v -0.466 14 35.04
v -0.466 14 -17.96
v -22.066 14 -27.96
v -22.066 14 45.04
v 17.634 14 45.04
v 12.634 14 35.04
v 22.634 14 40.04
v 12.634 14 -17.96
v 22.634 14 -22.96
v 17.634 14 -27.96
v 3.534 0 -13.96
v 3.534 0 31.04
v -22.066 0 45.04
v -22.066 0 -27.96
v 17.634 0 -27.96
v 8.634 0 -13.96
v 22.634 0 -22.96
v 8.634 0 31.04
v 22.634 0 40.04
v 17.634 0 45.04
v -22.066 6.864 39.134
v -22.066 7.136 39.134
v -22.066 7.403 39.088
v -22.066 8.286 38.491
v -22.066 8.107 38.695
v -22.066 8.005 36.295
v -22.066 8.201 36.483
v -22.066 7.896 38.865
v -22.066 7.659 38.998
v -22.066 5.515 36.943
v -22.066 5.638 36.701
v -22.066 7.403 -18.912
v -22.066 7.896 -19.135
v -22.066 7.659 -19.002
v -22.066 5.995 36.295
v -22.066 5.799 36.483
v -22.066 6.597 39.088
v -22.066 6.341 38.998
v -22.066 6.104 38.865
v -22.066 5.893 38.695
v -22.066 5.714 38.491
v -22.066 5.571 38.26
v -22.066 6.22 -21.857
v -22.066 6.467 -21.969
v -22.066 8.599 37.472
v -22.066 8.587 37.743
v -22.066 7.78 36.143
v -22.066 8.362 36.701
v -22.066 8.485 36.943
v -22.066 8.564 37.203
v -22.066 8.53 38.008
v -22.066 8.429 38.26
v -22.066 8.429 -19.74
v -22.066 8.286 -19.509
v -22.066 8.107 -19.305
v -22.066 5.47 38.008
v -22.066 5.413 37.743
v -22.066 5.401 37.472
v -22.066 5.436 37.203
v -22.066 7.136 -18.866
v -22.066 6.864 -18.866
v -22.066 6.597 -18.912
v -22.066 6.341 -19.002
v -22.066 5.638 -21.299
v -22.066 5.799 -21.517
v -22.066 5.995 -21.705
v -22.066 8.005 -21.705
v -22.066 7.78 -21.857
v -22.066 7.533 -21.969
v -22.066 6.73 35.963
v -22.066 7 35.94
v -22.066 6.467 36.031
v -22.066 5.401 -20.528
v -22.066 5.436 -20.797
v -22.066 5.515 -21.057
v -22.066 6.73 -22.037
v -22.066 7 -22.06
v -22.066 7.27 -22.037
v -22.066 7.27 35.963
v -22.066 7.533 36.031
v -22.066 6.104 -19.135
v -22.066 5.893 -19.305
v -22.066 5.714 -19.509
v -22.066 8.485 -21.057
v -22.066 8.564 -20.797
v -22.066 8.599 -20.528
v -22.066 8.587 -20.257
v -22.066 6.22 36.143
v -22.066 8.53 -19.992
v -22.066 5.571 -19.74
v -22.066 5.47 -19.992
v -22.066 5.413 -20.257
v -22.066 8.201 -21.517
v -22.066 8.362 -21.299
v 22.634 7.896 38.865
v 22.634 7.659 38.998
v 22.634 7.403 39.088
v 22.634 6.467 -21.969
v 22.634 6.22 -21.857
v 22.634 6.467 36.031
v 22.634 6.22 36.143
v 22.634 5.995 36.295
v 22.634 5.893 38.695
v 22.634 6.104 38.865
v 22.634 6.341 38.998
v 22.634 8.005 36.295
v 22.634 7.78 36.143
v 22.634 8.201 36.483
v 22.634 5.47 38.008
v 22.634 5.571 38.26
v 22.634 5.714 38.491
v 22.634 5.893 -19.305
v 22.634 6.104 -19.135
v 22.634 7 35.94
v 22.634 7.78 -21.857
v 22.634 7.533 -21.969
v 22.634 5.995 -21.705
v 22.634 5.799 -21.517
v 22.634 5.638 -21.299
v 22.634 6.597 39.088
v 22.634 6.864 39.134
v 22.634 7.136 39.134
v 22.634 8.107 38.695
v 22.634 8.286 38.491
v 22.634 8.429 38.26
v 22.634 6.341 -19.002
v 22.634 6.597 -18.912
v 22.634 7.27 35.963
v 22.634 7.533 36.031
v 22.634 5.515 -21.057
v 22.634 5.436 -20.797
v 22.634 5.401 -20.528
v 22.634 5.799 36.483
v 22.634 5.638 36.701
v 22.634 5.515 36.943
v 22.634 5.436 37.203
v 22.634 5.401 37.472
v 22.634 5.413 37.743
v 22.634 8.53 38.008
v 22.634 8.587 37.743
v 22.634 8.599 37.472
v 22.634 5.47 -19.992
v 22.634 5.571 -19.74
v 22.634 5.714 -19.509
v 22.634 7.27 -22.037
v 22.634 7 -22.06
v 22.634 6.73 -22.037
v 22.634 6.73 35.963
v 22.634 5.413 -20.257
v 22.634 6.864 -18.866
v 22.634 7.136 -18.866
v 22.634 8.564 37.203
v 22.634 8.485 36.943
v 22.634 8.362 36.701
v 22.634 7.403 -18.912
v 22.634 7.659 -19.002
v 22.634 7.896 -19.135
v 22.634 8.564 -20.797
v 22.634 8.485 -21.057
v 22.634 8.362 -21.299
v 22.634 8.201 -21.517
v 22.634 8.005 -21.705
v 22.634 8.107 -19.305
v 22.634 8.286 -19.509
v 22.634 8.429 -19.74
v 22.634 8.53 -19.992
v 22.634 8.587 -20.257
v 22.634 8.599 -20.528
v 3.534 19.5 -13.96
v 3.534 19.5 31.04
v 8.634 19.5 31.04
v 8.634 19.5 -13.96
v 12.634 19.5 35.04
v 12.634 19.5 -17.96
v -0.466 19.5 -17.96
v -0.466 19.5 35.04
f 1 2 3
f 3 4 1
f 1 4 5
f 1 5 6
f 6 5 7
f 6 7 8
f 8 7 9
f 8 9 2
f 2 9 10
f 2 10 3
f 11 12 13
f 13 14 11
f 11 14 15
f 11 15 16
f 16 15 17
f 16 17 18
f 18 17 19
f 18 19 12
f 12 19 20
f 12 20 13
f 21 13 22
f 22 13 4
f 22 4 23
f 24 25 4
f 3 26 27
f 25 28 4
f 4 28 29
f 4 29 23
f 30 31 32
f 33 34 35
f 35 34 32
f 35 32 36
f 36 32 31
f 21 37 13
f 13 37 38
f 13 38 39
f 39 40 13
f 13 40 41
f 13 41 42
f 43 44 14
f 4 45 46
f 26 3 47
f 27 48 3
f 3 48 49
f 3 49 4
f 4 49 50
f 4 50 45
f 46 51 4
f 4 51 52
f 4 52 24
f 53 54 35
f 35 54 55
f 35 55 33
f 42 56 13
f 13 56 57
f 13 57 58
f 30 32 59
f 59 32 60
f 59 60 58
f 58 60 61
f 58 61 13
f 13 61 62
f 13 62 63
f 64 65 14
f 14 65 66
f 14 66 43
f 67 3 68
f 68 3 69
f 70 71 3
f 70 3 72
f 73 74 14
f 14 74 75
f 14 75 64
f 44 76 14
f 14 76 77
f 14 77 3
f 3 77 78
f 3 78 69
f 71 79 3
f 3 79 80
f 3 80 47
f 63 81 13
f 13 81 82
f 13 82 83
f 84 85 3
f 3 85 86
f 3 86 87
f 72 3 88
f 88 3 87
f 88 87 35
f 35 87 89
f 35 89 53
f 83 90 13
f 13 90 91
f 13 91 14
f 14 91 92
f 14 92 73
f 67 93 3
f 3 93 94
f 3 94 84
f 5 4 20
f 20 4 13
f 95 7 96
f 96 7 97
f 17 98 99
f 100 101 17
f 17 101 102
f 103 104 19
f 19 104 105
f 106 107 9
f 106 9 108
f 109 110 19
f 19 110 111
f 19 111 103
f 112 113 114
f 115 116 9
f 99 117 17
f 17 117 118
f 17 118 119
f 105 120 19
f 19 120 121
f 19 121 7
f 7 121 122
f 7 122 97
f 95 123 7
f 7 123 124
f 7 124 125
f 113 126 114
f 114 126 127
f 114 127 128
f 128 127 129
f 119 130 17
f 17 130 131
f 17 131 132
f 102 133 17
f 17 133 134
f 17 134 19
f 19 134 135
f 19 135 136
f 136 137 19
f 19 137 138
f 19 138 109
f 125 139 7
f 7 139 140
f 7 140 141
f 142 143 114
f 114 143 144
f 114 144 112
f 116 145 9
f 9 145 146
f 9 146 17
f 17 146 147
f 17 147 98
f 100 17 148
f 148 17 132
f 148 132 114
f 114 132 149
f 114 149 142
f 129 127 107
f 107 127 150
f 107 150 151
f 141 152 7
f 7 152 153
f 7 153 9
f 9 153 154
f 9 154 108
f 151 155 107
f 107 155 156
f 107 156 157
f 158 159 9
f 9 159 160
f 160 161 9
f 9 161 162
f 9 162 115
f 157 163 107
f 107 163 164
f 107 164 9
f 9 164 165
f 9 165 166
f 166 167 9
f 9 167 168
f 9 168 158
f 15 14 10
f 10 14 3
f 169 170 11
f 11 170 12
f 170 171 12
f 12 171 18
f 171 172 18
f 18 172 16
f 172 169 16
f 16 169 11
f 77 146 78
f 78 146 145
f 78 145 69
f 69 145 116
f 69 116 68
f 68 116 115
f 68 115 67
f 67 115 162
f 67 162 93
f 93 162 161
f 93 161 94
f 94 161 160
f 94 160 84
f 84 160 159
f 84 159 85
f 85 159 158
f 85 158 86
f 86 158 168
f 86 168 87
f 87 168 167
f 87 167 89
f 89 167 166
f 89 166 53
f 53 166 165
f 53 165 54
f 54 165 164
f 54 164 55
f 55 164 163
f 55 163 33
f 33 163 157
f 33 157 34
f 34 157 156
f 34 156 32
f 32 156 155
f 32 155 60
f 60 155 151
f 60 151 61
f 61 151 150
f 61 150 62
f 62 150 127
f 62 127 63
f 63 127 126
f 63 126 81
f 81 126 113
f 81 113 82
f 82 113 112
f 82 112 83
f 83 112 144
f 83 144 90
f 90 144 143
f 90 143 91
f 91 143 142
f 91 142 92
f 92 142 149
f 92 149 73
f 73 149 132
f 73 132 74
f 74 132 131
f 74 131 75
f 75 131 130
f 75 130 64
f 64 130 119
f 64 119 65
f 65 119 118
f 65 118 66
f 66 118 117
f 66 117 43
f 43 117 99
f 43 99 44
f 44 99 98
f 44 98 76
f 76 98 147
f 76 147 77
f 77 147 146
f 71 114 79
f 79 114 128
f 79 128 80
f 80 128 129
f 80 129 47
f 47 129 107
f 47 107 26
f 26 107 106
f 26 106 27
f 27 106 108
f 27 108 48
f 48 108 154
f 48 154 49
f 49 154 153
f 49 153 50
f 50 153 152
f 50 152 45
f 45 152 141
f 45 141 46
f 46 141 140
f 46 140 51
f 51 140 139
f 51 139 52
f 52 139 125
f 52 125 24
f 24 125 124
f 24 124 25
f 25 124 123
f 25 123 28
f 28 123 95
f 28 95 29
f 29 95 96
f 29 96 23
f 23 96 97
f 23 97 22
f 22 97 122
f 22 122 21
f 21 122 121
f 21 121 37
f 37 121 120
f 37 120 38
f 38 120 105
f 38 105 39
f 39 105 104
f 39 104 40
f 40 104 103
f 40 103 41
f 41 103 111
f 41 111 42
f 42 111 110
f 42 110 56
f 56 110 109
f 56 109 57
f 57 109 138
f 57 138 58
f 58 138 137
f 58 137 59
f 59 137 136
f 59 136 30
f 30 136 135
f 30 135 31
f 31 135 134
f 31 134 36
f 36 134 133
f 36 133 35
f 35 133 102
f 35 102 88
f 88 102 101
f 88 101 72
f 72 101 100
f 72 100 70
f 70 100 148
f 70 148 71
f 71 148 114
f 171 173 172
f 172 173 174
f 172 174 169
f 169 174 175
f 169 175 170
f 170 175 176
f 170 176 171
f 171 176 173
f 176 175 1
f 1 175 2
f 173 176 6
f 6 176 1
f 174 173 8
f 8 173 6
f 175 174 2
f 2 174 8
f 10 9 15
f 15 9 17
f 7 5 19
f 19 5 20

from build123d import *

# Parameters (mm, degrees)
SKETCH1_W           = 44.7
SKETCH1_H           = 73
SKETCH1_W_2         = 5.1
SKETCH1_H_2         = 45
BOSS_EXTRUDE1_DEPTH = 14
CUT_EXTRUDE1_REACH  = 46.7
SKETCH2_R           = 1.6
SKETCH3_W           = 13.1
SKETCH3_H           = 53
SKETCH3_W_2         = 5.1
SKETCH3_H_2         = 45
BOSS_EXTRUDE2_DEPTH = 5.5
CUT_EXTRUDE2_REACH  = 16


with BuildPart() as part:
    # Sketch1 → Boss-Extrude1 (new body)
    with BuildSketch(Plane(origin=(0, 0, 0), x_dir=(1, 0, 0), z_dir=(0, 1, 0))):
        with Locations((0.284066801, -8.539694425)):
            Rectangle(SKETCH1_W, SKETCH1_H)
        with Locations((6.084066801, -8.539694425)):
            Rectangle(SKETCH1_W_2, SKETCH1_H_2, mode=Mode.SUBTRACT)
    extrude(amount=BOSS_EXTRUDE1_DEPTH)

    # Sketch2 → Cut-Extrude1 (cut, up to next)
    with BuildSketch(Plane(origin=(22.634066801, 0, 0), x_dir=(0, 0, -1), z_dir=(1, 0, 0)), mode=Mode.PRIVATE) as cut_extrude1_sk1:
        with Locations((-37.539694425, 7)):
            Circle(SKETCH2_R)
    cut_extrude1_tool1 = extrude(cut_extrude1_sk1.sketch, amount=-CUT_EXTRUDE1_REACH, mode=Mode.PRIVATE) & part.part
    add(cut_extrude1_tool1.solids().sort_by_distance((22.634067, 7, 37.539694))[0], mode=Mode.SUBTRACT)
    # Sketch2 → Cut-Extrude1 (cut, up to next)
    with BuildSketch(Plane(origin=(22.634066801, 0, 0), x_dir=(0, 0, -1), z_dir=(1, 0, 0)), mode=Mode.PRIVATE) as cut_extrude1_sk2:
        with Locations((20.460305575, 7)):
            Circle(SKETCH2_R)
    cut_extrude1_tool2 = extrude(cut_extrude1_sk2.sketch, amount=-CUT_EXTRUDE1_REACH, mode=Mode.PRIVATE) & part.part
    add(cut_extrude1_tool2.solids().sort_by_distance((22.634067, 7, -20.460306))[0], mode=Mode.SUBTRACT)

    # Sketch3 → Boss-Extrude2 (add)
    with BuildSketch(Plane(origin=(0, 14, 0), x_dir=(1, 0, 0), z_dir=(0, 1, 0))):
        with Locations((6.084066801, -8.539694425)):
            Rectangle(SKETCH3_W, SKETCH3_H)
        with Locations((6.084066801, -8.539694425)):
            Rectangle(SKETCH3_W_2, SKETCH3_H_2, mode=Mode.SUBTRACT)
    extrude(amount=BOSS_EXTRUDE2_DEPTH)

    # Sketch4 → Cut-Extrude2 (cut, up to next)
    with BuildSketch(Plane(origin=(0, 14, 0), x_dir=(1, 0, 0), z_dir=(0, 1, 0)), mode=Mode.PRIVATE) as cut_extrude2_sk1:
        Polygon((17.634066801, 27.960305575), (22.634066801, 22.960305575), (22.634066801, 27.960305575), align=None)
    cut_extrude2_tool1 = extrude(cut_extrude2_sk1.sketch, amount=-CUT_EXTRUDE2_REACH, mode=Mode.PRIVATE) & part.part
    add(cut_extrude2_tool1.solids().sort_by_distance((20.9674, 14, -26.293639))[0], mode=Mode.SUBTRACT)
    # Sketch4 → Cut-Extrude2 (cut, up to next)
    with BuildSketch(Plane(origin=(0, 14, 0), x_dir=(1, 0, 0), z_dir=(0, 1, 0)), mode=Mode.PRIVATE) as cut_extrude2_sk2:
        Polygon((17.634066801, -45.039694425), (22.634066801, -40.039694425), (22.634066801, -45.039694425), align=None)
    cut_extrude2_tool2 = extrude(cut_extrude2_sk2.sketch, amount=-CUT_EXTRUDE2_REACH, mode=Mode.PRIVATE) & part.part
    add(cut_extrude2_tool2.solids().sort_by_distance((20.9674, 14, 43.373028))[0], mode=Mode.SUBTRACT)


solid = part.part
